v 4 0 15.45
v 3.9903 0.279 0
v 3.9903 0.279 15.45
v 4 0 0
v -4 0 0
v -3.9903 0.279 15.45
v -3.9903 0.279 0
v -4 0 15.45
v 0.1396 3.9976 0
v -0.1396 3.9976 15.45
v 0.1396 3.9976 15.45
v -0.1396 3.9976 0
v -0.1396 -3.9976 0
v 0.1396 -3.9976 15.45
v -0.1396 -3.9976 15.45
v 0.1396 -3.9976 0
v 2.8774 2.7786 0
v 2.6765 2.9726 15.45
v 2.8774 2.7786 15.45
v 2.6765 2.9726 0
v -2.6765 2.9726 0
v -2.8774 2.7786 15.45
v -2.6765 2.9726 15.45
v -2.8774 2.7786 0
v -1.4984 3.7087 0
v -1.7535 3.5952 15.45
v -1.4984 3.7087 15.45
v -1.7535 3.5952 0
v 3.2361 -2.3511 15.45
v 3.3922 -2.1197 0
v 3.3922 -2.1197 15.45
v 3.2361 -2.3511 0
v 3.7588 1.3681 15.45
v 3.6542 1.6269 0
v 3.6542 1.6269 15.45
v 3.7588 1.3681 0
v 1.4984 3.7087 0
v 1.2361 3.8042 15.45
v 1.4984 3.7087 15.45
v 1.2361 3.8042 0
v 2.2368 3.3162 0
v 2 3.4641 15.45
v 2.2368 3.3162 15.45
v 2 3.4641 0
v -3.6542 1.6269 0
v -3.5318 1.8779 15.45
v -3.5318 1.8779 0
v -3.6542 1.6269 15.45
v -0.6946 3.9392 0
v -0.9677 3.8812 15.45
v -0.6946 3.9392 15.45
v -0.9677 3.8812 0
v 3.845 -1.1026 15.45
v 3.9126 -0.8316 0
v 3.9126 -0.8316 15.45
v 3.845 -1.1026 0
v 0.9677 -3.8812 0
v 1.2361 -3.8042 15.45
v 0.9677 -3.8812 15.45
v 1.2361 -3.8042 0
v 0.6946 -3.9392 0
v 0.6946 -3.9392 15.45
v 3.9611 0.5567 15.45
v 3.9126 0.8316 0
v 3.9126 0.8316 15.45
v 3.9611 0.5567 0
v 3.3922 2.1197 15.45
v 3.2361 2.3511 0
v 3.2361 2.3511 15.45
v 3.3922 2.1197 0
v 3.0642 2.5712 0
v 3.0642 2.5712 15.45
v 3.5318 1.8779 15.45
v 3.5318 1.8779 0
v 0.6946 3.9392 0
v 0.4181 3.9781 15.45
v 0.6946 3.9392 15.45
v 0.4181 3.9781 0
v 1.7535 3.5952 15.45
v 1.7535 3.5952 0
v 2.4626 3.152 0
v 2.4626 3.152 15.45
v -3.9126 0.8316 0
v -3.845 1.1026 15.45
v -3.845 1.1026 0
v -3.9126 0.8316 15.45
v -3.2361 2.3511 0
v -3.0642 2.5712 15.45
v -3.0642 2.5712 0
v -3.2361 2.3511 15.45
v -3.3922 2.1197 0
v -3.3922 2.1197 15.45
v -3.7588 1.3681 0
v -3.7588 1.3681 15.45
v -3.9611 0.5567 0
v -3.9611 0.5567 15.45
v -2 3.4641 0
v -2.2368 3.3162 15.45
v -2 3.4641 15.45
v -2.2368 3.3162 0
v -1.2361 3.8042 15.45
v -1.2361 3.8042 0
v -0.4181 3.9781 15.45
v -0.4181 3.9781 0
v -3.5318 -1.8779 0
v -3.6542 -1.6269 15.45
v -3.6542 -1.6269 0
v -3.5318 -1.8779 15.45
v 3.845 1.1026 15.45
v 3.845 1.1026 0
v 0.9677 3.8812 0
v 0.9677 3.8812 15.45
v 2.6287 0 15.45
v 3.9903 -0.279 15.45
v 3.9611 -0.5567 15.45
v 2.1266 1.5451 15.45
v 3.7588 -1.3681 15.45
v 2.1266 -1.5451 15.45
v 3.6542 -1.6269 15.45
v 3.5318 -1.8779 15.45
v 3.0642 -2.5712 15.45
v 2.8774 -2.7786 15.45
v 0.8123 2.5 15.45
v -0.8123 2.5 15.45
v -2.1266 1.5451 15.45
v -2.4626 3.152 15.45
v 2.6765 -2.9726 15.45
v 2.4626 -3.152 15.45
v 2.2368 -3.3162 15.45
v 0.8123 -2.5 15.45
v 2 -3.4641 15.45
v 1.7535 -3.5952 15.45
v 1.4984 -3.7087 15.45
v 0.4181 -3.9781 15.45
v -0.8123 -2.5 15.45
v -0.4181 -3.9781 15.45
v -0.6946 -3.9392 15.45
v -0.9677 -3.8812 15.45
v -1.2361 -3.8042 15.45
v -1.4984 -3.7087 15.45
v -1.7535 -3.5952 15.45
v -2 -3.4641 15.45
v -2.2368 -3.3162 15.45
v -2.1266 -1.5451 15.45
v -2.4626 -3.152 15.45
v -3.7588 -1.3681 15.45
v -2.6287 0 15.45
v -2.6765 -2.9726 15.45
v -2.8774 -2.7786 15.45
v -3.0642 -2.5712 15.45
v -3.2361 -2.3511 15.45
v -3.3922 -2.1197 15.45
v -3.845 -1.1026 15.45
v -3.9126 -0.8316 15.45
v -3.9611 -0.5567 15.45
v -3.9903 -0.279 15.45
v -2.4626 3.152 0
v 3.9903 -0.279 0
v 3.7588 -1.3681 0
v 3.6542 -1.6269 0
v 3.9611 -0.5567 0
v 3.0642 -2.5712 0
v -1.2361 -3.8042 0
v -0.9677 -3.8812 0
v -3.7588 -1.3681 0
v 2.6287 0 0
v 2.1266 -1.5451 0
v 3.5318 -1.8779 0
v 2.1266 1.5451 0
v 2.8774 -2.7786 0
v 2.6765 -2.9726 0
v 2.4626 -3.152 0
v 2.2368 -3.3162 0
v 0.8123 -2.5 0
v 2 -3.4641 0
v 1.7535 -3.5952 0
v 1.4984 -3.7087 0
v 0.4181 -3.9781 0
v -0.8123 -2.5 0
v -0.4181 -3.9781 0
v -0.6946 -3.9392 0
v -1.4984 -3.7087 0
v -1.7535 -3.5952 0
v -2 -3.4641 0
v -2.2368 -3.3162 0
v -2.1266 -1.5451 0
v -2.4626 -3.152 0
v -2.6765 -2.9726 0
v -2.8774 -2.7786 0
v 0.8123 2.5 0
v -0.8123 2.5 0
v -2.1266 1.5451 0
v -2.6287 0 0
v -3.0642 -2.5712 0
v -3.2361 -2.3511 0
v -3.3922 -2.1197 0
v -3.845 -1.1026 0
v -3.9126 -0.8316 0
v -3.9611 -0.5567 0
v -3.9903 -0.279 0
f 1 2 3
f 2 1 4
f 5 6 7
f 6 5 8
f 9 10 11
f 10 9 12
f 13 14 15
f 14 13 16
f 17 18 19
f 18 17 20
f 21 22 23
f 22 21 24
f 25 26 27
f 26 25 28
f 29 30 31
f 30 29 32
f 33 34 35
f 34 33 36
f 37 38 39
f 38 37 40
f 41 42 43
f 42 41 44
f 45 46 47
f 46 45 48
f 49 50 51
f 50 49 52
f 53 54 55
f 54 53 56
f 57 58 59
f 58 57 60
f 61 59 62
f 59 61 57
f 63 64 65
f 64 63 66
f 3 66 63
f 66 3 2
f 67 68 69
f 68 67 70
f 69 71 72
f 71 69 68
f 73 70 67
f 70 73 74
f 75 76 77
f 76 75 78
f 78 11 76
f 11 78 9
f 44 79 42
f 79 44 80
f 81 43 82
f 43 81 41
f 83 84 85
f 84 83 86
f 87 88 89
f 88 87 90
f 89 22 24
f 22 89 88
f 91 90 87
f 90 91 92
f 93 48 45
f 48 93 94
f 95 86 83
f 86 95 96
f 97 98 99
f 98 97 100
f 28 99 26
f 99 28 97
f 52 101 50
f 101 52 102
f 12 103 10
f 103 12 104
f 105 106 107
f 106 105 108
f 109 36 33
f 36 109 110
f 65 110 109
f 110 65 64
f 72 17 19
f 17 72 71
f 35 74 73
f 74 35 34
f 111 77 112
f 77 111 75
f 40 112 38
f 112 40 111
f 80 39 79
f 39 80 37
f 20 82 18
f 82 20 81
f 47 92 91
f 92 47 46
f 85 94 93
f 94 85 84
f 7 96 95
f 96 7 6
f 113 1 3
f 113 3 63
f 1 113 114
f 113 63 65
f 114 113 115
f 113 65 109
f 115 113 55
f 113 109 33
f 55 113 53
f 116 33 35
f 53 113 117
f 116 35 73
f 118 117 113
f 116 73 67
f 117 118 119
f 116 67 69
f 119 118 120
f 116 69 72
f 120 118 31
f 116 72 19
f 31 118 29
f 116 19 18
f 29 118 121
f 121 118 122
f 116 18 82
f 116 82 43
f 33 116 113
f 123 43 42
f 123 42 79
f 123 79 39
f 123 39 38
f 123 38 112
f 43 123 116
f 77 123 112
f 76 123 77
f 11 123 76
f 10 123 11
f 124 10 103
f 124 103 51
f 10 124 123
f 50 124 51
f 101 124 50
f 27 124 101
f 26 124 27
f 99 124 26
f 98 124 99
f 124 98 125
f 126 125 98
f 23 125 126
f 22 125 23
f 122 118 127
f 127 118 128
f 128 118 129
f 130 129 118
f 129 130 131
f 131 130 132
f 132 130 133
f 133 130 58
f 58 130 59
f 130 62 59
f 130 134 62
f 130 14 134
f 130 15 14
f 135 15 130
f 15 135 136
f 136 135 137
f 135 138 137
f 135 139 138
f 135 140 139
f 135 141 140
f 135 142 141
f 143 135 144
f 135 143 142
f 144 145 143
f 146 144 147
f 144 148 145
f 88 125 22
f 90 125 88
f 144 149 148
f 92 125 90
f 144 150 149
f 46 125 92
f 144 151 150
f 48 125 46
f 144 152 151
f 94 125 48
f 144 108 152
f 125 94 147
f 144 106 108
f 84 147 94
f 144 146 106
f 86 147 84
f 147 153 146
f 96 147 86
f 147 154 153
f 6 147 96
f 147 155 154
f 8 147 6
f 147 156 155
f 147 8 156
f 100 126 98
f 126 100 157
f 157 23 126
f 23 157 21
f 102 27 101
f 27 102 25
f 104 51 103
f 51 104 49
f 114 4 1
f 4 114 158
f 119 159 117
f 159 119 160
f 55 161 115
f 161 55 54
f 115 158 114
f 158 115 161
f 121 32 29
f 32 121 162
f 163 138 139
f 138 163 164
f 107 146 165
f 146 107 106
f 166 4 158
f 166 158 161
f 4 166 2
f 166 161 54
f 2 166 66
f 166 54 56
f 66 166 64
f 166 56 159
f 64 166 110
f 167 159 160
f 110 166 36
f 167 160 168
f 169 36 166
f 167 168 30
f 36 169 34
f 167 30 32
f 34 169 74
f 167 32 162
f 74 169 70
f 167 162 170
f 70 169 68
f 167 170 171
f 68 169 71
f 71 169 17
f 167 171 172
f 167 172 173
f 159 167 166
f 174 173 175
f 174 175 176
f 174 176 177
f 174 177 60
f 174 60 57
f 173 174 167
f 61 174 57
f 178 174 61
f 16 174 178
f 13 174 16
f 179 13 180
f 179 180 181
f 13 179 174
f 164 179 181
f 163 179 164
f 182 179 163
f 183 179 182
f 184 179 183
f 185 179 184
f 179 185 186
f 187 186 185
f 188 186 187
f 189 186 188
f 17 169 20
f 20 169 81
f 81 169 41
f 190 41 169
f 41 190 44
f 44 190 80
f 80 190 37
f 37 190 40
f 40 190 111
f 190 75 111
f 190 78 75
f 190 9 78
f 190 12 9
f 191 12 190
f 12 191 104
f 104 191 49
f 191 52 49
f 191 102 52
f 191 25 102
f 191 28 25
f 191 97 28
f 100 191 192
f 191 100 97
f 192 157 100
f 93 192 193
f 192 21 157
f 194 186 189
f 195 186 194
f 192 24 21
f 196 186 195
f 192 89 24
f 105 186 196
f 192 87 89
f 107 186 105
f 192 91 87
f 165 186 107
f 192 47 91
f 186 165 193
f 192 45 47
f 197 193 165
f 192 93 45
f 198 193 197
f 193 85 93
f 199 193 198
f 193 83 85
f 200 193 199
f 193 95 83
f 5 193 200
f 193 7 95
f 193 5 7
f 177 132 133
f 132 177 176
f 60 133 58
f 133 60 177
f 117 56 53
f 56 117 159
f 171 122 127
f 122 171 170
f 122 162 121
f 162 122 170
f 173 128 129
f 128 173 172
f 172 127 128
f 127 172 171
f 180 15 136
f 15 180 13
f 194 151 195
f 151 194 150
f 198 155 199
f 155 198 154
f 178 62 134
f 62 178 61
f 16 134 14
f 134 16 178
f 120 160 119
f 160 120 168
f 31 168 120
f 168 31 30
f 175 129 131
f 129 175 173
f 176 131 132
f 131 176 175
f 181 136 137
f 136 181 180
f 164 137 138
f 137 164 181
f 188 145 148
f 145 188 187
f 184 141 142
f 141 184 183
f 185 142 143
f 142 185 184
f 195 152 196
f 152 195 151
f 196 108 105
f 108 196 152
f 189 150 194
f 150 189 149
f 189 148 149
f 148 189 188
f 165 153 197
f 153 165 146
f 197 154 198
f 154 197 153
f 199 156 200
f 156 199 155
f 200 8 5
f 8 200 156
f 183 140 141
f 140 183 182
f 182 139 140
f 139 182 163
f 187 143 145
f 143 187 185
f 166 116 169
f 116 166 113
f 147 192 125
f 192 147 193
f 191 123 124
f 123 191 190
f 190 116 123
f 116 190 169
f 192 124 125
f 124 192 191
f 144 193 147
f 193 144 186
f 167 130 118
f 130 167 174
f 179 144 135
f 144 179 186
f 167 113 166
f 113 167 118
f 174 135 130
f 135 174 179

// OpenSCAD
// file: ../polyhole.scad
// The Cylinder is dead! Long live the Cylinder!
// A module for a polyhole by radius, based on Nophead's work.

module polyhole(h, r, cent = false)
{
    n = max(round(4 * r), 3);
    cylinder(h = h, r = r / cos(180 / n), $fn = n, center = cent);
}
// file: ../spacer.scad
use<polyhole.scad>

spacer(10, 10, 5);

module spacer(hei, or, ir, cent = false)
{
    difference()
    {
        cylinder(h = hei, r = or, center = cent, $fn = 90);
        polyhole(hei, ir, cent);
    }
}
// main file
use<../spacer.scad>

IdlerSpacerT();

module IdlerSpacerT()
{
    spacer((15.25+10.4/2)-4-1, 8/2, 5/2);
}
